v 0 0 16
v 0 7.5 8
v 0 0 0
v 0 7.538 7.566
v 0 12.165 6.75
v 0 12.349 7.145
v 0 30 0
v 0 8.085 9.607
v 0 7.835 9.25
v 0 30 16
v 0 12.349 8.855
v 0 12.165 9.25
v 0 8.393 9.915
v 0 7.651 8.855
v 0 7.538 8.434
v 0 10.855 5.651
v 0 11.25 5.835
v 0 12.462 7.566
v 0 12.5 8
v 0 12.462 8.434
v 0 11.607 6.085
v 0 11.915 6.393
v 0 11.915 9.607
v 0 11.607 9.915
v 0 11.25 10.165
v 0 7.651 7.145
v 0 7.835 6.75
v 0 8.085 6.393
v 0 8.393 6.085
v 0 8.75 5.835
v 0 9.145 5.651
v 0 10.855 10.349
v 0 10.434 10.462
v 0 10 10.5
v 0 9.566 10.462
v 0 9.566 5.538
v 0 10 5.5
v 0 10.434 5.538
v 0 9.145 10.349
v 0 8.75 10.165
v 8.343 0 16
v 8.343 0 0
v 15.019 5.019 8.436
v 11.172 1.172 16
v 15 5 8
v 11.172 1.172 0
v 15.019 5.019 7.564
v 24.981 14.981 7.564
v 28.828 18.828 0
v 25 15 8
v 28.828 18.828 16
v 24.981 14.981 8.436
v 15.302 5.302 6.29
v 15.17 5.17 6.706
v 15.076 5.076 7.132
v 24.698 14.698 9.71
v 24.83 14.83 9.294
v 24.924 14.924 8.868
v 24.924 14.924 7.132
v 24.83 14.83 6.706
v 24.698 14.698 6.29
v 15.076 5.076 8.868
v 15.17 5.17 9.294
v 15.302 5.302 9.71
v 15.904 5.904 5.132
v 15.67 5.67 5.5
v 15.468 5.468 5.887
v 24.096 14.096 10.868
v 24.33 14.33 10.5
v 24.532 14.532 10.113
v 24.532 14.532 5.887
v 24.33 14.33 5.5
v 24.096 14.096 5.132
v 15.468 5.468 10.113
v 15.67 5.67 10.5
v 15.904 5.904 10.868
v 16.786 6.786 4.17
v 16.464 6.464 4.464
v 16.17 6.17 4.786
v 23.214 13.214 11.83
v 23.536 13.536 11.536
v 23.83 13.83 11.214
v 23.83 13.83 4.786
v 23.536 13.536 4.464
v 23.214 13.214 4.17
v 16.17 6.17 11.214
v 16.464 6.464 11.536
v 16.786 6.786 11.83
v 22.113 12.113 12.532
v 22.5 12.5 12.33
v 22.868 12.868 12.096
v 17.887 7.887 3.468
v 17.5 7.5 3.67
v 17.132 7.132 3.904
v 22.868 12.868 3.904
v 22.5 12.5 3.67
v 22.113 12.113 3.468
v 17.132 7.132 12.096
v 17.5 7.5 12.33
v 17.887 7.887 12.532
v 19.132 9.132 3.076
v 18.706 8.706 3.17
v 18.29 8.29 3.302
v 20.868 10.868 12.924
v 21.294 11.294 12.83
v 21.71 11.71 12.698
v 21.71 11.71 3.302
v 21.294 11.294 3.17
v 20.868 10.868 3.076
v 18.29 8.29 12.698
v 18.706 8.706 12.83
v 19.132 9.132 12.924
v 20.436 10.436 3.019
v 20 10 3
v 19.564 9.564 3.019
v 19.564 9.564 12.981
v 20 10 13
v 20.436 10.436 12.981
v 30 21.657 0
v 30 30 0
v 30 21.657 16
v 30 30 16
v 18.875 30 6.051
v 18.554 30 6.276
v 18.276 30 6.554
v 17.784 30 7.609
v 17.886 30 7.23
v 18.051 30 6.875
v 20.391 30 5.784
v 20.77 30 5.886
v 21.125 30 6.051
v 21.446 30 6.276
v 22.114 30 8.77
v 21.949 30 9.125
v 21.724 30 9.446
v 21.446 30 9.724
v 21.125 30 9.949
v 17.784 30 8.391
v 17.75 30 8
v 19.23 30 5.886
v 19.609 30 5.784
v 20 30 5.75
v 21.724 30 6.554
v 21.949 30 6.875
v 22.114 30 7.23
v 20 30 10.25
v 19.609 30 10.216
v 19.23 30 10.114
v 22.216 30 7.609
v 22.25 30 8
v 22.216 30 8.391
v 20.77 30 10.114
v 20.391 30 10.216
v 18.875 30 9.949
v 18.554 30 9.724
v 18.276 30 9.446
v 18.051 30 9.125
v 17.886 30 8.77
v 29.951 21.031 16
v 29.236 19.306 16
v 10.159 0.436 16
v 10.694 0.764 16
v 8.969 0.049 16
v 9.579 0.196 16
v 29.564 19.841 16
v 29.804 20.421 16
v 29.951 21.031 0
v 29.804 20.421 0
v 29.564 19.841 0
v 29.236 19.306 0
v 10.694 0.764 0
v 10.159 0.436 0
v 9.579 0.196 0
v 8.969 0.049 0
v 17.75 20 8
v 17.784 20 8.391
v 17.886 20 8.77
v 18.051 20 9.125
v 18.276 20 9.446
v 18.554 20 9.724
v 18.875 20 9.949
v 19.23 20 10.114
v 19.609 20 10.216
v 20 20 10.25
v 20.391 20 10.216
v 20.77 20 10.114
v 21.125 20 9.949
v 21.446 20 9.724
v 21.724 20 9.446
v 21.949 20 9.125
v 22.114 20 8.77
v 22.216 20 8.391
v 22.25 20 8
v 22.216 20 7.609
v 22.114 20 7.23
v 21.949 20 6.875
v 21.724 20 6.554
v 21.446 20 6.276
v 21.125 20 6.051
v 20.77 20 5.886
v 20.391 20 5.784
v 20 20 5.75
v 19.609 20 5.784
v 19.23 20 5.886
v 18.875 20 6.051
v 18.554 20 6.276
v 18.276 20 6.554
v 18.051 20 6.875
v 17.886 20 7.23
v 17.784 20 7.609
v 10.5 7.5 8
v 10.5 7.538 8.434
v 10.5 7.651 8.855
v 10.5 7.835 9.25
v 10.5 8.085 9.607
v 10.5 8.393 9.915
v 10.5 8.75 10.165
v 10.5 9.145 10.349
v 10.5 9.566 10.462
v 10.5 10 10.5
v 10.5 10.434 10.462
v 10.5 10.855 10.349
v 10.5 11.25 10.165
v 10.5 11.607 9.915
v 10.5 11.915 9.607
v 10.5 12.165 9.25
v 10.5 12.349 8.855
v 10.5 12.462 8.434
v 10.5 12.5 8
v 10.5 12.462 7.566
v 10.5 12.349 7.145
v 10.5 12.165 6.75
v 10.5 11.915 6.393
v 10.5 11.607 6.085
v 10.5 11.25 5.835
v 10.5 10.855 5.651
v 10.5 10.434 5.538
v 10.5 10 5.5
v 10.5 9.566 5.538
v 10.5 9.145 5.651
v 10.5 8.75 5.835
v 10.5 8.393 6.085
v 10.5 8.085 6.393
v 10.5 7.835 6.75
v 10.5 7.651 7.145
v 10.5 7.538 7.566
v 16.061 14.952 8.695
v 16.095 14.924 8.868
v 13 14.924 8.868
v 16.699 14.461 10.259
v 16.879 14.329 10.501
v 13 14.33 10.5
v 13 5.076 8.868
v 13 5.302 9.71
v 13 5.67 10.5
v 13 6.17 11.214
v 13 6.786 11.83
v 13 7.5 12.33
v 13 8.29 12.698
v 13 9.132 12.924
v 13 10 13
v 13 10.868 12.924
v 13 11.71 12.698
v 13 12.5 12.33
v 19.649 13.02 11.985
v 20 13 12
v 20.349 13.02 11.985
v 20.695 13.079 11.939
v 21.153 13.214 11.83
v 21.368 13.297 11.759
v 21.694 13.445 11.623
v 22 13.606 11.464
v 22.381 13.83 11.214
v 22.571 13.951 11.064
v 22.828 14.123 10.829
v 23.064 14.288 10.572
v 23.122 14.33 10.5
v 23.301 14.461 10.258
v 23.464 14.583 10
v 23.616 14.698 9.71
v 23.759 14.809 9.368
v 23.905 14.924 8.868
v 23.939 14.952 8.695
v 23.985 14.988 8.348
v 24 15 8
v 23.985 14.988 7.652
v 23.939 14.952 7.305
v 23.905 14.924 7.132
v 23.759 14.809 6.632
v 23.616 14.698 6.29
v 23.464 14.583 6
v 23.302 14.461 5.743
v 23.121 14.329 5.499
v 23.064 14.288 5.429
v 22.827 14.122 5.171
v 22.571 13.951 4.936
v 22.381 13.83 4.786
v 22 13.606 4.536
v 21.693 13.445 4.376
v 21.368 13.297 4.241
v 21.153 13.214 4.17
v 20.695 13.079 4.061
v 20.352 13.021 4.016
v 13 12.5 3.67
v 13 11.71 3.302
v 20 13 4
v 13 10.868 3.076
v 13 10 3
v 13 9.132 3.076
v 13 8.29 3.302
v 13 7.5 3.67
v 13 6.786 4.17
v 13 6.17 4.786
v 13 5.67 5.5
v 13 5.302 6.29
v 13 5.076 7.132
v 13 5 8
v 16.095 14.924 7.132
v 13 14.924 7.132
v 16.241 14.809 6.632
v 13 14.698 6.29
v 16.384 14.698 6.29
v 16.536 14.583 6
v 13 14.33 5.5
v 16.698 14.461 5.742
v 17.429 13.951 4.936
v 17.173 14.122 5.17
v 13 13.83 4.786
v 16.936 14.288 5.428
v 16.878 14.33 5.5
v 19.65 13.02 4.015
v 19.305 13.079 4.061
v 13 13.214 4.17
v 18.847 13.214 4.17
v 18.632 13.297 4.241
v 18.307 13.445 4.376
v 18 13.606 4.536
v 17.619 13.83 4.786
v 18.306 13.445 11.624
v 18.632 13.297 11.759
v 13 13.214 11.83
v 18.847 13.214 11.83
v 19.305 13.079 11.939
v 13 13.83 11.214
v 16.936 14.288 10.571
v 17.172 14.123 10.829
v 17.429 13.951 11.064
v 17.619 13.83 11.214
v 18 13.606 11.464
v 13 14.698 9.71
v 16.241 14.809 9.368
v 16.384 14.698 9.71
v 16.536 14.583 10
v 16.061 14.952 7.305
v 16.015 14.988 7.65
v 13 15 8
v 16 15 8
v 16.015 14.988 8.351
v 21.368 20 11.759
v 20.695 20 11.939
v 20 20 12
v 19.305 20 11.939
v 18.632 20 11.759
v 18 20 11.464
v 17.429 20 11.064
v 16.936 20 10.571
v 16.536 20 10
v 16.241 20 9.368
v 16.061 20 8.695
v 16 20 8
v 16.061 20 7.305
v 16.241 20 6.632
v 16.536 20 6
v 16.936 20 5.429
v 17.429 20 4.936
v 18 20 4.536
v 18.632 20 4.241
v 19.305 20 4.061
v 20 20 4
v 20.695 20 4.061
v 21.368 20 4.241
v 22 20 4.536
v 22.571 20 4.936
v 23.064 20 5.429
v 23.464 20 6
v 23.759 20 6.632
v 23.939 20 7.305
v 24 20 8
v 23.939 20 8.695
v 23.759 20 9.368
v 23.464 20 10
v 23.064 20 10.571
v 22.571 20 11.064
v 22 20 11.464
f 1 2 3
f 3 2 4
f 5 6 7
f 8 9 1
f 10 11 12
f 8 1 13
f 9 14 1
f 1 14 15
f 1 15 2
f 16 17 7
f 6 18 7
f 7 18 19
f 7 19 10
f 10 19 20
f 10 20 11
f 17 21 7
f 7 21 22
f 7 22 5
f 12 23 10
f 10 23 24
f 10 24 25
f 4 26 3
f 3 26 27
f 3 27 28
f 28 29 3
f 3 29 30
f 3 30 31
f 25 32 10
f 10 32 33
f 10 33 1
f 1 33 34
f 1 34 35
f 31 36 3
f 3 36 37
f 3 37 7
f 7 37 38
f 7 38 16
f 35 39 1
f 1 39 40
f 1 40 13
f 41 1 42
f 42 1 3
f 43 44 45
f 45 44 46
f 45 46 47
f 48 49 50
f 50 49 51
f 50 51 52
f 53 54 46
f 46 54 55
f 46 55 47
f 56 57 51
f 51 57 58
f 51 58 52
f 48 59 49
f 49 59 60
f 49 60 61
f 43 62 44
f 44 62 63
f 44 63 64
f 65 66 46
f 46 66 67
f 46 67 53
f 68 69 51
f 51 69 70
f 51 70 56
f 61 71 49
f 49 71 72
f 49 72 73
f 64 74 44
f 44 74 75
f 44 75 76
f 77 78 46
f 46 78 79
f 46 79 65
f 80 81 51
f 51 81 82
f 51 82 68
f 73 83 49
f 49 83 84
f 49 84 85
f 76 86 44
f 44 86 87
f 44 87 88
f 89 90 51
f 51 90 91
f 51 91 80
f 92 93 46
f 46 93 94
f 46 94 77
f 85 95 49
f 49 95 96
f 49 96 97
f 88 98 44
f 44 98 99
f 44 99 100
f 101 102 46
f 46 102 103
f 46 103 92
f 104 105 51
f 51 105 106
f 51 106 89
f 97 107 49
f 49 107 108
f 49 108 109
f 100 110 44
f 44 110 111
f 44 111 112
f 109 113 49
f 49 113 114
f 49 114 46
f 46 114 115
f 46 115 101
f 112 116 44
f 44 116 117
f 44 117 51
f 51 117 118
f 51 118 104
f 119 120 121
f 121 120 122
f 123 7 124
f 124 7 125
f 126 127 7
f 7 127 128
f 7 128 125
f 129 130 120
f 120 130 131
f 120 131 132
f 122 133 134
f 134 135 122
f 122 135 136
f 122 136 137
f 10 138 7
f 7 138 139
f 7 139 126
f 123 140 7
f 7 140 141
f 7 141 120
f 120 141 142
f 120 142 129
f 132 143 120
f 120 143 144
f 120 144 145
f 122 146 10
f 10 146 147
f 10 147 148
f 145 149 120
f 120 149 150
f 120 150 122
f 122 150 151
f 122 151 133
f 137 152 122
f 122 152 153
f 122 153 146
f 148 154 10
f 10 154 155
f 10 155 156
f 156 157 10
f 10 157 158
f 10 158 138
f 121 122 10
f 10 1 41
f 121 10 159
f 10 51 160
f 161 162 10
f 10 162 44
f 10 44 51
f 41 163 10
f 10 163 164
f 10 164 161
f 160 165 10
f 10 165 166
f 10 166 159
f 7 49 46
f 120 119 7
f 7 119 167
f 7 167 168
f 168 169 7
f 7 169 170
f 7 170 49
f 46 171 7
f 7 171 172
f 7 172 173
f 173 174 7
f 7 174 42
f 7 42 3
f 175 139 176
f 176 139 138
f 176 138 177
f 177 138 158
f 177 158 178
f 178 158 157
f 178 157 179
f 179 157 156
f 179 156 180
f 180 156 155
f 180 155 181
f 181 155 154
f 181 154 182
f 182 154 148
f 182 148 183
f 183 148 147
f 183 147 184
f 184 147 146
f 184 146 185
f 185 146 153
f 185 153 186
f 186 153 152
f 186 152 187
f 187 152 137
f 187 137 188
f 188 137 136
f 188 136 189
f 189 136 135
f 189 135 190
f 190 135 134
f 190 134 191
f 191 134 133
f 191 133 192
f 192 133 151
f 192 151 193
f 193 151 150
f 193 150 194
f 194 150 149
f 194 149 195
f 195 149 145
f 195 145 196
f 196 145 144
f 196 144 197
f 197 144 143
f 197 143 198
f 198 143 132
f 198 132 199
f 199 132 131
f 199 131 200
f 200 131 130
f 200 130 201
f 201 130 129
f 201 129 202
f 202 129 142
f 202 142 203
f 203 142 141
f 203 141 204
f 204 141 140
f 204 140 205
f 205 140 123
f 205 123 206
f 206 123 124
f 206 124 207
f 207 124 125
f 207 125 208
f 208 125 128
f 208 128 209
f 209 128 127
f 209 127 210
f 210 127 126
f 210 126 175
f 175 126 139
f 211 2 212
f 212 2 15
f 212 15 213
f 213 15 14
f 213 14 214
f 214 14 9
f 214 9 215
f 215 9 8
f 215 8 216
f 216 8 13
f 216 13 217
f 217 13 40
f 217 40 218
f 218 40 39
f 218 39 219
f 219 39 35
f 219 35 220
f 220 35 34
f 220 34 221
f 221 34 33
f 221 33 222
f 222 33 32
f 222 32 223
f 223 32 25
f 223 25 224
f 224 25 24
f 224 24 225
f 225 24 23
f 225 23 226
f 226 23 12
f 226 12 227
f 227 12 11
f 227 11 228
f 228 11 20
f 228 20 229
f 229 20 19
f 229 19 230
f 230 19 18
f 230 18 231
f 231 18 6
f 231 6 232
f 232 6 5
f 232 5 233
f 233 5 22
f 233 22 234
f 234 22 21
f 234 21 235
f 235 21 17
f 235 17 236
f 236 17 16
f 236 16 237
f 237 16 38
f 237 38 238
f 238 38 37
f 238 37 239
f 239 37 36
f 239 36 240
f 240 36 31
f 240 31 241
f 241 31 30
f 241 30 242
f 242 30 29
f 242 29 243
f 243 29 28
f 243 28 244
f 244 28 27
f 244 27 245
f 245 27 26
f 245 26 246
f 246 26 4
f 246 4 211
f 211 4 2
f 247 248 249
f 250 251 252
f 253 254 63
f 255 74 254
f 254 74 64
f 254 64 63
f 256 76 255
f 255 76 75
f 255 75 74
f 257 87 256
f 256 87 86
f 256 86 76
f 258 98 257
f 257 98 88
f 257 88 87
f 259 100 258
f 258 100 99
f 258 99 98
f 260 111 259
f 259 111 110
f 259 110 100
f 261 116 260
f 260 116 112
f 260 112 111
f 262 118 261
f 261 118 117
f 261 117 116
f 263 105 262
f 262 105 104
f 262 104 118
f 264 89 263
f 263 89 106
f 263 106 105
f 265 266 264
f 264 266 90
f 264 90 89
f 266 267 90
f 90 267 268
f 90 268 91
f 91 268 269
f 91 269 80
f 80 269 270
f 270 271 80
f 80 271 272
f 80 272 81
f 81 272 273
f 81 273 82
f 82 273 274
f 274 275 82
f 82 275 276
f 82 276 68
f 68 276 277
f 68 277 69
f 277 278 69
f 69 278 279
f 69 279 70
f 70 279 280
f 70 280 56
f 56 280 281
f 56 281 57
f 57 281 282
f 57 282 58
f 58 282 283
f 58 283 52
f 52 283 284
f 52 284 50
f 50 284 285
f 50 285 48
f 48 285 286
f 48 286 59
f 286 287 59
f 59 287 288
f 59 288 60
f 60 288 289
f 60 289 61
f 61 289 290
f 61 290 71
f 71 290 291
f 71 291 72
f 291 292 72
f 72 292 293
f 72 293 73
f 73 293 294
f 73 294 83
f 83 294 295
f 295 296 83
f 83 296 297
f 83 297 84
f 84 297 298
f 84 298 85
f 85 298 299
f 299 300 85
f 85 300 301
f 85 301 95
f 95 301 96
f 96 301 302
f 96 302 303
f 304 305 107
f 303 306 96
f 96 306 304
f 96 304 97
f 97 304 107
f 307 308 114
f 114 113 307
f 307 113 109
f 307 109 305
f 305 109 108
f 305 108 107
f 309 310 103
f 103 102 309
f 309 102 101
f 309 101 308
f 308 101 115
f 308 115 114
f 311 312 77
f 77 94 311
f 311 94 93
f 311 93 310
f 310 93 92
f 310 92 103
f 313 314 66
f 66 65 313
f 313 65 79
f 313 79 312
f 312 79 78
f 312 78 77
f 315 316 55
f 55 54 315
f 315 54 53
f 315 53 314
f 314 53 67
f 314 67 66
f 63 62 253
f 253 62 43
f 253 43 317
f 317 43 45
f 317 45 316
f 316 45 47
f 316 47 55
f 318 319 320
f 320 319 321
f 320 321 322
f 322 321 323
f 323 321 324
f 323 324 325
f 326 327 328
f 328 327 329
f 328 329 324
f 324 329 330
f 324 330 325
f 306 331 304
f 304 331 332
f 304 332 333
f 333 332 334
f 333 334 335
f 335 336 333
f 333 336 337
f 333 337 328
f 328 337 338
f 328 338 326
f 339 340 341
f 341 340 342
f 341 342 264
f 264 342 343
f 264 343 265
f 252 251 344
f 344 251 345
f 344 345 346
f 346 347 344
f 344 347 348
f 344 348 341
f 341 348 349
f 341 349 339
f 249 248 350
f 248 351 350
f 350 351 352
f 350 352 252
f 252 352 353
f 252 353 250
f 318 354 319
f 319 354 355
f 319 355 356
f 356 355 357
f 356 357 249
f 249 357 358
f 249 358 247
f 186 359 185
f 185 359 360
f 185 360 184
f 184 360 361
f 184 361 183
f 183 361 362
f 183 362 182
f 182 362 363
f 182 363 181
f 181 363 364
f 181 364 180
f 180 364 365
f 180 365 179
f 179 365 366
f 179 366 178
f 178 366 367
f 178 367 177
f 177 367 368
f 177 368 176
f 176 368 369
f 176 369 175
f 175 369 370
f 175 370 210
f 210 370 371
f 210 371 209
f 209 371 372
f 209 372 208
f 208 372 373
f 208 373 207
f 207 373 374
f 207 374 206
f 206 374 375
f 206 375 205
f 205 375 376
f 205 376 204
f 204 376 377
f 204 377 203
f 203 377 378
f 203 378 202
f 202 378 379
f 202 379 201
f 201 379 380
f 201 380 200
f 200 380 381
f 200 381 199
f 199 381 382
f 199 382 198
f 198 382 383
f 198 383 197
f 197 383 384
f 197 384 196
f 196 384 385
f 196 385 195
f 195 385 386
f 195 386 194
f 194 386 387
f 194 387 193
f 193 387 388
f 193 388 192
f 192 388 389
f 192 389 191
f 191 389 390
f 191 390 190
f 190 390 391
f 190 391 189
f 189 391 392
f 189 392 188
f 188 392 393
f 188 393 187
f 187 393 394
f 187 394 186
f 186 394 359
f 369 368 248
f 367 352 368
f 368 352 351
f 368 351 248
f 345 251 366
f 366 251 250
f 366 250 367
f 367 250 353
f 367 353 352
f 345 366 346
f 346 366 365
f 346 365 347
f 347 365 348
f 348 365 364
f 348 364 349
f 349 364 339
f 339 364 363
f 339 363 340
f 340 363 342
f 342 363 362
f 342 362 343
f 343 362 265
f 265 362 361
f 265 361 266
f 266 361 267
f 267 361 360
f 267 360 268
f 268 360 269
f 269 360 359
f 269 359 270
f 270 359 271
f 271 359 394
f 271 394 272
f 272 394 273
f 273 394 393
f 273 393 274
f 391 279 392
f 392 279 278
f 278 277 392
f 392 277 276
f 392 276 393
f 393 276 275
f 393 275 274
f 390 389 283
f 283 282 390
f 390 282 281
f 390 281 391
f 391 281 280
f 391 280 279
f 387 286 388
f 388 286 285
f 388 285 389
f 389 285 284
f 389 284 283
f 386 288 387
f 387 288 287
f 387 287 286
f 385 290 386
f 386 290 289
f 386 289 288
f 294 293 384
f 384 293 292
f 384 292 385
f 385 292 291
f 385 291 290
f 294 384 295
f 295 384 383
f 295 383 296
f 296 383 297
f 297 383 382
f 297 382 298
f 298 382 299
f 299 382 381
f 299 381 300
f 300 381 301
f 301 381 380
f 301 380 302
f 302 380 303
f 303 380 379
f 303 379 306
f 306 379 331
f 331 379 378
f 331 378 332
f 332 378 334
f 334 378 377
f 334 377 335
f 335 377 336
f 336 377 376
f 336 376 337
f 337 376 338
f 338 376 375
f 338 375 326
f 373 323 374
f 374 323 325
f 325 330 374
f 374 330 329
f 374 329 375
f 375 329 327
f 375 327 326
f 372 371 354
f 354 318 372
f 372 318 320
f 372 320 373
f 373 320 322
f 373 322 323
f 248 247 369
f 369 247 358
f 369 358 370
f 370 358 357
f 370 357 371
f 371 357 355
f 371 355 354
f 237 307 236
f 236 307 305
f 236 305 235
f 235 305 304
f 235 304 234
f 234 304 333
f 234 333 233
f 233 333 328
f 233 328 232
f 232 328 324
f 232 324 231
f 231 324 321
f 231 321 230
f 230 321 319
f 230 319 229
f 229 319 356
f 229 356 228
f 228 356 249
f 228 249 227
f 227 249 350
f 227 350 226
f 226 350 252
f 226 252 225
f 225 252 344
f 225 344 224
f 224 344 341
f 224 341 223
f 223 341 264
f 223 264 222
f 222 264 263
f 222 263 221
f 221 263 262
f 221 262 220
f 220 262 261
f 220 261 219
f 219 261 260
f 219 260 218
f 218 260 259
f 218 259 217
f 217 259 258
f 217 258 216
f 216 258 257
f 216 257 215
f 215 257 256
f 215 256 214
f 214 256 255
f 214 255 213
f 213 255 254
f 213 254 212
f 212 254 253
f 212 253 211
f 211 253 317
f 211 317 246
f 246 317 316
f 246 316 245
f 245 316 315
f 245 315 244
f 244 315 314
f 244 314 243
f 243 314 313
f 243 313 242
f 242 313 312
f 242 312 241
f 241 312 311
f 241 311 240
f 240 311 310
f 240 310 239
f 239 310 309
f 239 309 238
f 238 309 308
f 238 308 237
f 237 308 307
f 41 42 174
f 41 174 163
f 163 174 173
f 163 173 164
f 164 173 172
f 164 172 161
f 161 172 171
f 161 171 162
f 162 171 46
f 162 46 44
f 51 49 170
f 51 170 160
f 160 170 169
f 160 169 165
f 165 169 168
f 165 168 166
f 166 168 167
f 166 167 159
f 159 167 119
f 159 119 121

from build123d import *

# Parameters (mm, degrees)
BOSS_EXTRUDE1_DEPTH = 16
SKETCH3_R           = 2.25
CUT_EXTRUDE1_DEPTH  = 46.343136195
SKETCH2_R           = 2.5
CUT_EXTRUDE2_DEPTH  = 46.343136195
SKETCH4_R           = 5
CUT_EXTRUDE3_DEPTH  = 40.446165923
SKETCH5_R           = 4
CUT_EXTRUDE4_DEPTH  = 40.446165847
CHAMFER1_SIZE       = 3
FILLET2_R           = 4


with BuildPart() as part:
    # Sketch1 → Boss-Extrude1 (new body)
    with BuildSketch(Plane.XY):
        Polygon((0, 0), (10, 0), (30, 20), (30, 30), (0, 30), align=None)
    extrude(amount=BOSS_EXTRUDE1_DEPTH)

    # Sketch3 → Cut-Extrude1 (cut, through all)
    with BuildSketch(Plane(origin=(0, 30, 0), x_dir=(1, 0, 0), z_dir=(0, 1, 0))):
        with Locations(Location((20, -8, 0), (0, 0, 180))):
            Circle(SKETCH3_R)
    extrude(amount=-CUT_EXTRUDE1_DEPTH, mode=Mode.SUBTRACT)

    # Sketch2 → Cut-Extrude2 (cut, through all)
    with BuildSketch(Plane.ZY):
        with Locations(Location((8, 10, 0), (0, 0, 270))):
            Circle(SKETCH2_R)
    extrude(amount=-CUT_EXTRUDE2_DEPTH, mode=Mode.SUBTRACT)

    # Sketch4 → Cut-Extrude3 (cut, through all)
    with BuildSketch(Plane.ZY.offset(-10)):
        with Locations(Location((8, 10, 0), (0, 0, 270))):
            Circle(SKETCH4_R)
    extrude(amount=-CUT_EXTRUDE3_DEPTH, mode=Mode.SUBTRACT)

    # Sketch5 → Cut-Extrude4 (cut, through all)
    with BuildSketch(Plane(origin=(0, 20, 0), x_dir=(1, 0, 0), z_dir=(0, 1, 0))):
        with Locations(Location((20, -8, 0), (0, 0, 180))):
            Circle(SKETCH5_R)
    extrude(amount=-CUT_EXTRUDE4_DEPTH, mode=Mode.SUBTRACT)

    # Chamfer1
    # the kernel refuses this chamfer: 3 mm, written as the material it adds along each edge
    with BuildSketch(Plane(origin=(10, 10, 8), x_dir=(0, -1, 0), z_dir=(0, 0, -1))) as chamfer1_piece_1_section:
        Polygon((5, -CHAMFER1_SIZE), (5 - CHAMFER1_SIZE, 0), (5, 0), align=None)
    chamfer1_piece_1 = revolve(axis=Axis((10, 10, 8), (-1, 0, 0)), mode=Mode.PRIVATE)
    chamfer1_piece_1 = chamfer1_piece_1 - Plane(origin=(11.757355127, 10, 8), x_dir=(0, -1, 0), z_dir=(-1, 0, 0)) * Cylinder(2.5, 21, mode=Mode.PRIVATE)
    add(chamfer1_piece_1)

    # Fillet2
    fillet2_edges = [part.edges().sort_by_distance(p)[0] for p in [
        (30, 20, 8),
        (10, 0, 8),
    ]]
    fillet(fillet2_edges, radius=FILLET2_R)


solid = part.part
